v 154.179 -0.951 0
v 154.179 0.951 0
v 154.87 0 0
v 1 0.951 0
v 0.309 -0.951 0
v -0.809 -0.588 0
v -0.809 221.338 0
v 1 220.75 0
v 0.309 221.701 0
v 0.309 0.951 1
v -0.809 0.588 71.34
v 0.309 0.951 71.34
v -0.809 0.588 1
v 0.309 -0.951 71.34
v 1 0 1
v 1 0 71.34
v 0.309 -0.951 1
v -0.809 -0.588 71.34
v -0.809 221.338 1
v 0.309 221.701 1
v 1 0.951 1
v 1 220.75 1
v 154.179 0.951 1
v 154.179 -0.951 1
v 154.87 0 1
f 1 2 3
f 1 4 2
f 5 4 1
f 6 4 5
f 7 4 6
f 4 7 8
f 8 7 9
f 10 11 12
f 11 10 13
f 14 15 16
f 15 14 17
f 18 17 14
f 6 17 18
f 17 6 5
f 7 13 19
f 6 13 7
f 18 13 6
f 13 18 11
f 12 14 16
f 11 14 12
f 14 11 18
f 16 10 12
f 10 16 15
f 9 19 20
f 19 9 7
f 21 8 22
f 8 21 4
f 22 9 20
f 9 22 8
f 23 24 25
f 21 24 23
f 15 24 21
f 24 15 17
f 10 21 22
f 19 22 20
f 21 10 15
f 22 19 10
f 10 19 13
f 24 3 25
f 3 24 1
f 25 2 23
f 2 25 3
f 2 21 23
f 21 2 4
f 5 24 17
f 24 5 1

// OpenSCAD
//base_point
base_point_radius = 1;
base_point_height = 1;
x_base_point = 0;
y_base_point = 0;
z_base_point = 0;

//x_point
x_point_radius = 1;
x_point_height = 1;
x_x_point = 153.87;
y_x_point = 0;
z_x_point = 0;

//y_point
y_point_radius = 1;
y_point_height = 1;
x_y_point = 0;
y_y_point = 153.86 + 66.89;
z_y_point = 0;

//z_point
z_point_radius = 1;
z_point_height = 1;
x_z_point = 0;
y_z_point = 0;
z_z_point = 70.34;

//The object
union(){
	hull(){
	    translate([x_base_point, y_base_point, z_base_point]){
		cylinder(base_point_height, base_point_radius, base_point_radius);
	    }
	    translate([x_z_point, y_z_point, z_z_point]){
		cylinder(z_point_height, z_point_radius, z_point_radius);
	    }
	}
	hull(){
	    translate([x_base_point, y_base_point, z_base_point]){
		cylinder(base_point_height, base_point_radius, base_point_radius);
	    }
	    translate([x_y_point, y_y_point, z_y_point]){
		cylinder(y_point_height, y_point_radius, y_point_radius);
	    	}
    	}
	hull(){
	    translate([x_base_point, y_base_point, z_base_point]){
		cylinder(base_point_height, base_point_radius, base_point_radius);
	    }
	    translate([x_x_point, y_x_point, z_x_point]){
		cylinder(x_point_height, x_point_radius, x_point_radius);
	    }
	}
}
